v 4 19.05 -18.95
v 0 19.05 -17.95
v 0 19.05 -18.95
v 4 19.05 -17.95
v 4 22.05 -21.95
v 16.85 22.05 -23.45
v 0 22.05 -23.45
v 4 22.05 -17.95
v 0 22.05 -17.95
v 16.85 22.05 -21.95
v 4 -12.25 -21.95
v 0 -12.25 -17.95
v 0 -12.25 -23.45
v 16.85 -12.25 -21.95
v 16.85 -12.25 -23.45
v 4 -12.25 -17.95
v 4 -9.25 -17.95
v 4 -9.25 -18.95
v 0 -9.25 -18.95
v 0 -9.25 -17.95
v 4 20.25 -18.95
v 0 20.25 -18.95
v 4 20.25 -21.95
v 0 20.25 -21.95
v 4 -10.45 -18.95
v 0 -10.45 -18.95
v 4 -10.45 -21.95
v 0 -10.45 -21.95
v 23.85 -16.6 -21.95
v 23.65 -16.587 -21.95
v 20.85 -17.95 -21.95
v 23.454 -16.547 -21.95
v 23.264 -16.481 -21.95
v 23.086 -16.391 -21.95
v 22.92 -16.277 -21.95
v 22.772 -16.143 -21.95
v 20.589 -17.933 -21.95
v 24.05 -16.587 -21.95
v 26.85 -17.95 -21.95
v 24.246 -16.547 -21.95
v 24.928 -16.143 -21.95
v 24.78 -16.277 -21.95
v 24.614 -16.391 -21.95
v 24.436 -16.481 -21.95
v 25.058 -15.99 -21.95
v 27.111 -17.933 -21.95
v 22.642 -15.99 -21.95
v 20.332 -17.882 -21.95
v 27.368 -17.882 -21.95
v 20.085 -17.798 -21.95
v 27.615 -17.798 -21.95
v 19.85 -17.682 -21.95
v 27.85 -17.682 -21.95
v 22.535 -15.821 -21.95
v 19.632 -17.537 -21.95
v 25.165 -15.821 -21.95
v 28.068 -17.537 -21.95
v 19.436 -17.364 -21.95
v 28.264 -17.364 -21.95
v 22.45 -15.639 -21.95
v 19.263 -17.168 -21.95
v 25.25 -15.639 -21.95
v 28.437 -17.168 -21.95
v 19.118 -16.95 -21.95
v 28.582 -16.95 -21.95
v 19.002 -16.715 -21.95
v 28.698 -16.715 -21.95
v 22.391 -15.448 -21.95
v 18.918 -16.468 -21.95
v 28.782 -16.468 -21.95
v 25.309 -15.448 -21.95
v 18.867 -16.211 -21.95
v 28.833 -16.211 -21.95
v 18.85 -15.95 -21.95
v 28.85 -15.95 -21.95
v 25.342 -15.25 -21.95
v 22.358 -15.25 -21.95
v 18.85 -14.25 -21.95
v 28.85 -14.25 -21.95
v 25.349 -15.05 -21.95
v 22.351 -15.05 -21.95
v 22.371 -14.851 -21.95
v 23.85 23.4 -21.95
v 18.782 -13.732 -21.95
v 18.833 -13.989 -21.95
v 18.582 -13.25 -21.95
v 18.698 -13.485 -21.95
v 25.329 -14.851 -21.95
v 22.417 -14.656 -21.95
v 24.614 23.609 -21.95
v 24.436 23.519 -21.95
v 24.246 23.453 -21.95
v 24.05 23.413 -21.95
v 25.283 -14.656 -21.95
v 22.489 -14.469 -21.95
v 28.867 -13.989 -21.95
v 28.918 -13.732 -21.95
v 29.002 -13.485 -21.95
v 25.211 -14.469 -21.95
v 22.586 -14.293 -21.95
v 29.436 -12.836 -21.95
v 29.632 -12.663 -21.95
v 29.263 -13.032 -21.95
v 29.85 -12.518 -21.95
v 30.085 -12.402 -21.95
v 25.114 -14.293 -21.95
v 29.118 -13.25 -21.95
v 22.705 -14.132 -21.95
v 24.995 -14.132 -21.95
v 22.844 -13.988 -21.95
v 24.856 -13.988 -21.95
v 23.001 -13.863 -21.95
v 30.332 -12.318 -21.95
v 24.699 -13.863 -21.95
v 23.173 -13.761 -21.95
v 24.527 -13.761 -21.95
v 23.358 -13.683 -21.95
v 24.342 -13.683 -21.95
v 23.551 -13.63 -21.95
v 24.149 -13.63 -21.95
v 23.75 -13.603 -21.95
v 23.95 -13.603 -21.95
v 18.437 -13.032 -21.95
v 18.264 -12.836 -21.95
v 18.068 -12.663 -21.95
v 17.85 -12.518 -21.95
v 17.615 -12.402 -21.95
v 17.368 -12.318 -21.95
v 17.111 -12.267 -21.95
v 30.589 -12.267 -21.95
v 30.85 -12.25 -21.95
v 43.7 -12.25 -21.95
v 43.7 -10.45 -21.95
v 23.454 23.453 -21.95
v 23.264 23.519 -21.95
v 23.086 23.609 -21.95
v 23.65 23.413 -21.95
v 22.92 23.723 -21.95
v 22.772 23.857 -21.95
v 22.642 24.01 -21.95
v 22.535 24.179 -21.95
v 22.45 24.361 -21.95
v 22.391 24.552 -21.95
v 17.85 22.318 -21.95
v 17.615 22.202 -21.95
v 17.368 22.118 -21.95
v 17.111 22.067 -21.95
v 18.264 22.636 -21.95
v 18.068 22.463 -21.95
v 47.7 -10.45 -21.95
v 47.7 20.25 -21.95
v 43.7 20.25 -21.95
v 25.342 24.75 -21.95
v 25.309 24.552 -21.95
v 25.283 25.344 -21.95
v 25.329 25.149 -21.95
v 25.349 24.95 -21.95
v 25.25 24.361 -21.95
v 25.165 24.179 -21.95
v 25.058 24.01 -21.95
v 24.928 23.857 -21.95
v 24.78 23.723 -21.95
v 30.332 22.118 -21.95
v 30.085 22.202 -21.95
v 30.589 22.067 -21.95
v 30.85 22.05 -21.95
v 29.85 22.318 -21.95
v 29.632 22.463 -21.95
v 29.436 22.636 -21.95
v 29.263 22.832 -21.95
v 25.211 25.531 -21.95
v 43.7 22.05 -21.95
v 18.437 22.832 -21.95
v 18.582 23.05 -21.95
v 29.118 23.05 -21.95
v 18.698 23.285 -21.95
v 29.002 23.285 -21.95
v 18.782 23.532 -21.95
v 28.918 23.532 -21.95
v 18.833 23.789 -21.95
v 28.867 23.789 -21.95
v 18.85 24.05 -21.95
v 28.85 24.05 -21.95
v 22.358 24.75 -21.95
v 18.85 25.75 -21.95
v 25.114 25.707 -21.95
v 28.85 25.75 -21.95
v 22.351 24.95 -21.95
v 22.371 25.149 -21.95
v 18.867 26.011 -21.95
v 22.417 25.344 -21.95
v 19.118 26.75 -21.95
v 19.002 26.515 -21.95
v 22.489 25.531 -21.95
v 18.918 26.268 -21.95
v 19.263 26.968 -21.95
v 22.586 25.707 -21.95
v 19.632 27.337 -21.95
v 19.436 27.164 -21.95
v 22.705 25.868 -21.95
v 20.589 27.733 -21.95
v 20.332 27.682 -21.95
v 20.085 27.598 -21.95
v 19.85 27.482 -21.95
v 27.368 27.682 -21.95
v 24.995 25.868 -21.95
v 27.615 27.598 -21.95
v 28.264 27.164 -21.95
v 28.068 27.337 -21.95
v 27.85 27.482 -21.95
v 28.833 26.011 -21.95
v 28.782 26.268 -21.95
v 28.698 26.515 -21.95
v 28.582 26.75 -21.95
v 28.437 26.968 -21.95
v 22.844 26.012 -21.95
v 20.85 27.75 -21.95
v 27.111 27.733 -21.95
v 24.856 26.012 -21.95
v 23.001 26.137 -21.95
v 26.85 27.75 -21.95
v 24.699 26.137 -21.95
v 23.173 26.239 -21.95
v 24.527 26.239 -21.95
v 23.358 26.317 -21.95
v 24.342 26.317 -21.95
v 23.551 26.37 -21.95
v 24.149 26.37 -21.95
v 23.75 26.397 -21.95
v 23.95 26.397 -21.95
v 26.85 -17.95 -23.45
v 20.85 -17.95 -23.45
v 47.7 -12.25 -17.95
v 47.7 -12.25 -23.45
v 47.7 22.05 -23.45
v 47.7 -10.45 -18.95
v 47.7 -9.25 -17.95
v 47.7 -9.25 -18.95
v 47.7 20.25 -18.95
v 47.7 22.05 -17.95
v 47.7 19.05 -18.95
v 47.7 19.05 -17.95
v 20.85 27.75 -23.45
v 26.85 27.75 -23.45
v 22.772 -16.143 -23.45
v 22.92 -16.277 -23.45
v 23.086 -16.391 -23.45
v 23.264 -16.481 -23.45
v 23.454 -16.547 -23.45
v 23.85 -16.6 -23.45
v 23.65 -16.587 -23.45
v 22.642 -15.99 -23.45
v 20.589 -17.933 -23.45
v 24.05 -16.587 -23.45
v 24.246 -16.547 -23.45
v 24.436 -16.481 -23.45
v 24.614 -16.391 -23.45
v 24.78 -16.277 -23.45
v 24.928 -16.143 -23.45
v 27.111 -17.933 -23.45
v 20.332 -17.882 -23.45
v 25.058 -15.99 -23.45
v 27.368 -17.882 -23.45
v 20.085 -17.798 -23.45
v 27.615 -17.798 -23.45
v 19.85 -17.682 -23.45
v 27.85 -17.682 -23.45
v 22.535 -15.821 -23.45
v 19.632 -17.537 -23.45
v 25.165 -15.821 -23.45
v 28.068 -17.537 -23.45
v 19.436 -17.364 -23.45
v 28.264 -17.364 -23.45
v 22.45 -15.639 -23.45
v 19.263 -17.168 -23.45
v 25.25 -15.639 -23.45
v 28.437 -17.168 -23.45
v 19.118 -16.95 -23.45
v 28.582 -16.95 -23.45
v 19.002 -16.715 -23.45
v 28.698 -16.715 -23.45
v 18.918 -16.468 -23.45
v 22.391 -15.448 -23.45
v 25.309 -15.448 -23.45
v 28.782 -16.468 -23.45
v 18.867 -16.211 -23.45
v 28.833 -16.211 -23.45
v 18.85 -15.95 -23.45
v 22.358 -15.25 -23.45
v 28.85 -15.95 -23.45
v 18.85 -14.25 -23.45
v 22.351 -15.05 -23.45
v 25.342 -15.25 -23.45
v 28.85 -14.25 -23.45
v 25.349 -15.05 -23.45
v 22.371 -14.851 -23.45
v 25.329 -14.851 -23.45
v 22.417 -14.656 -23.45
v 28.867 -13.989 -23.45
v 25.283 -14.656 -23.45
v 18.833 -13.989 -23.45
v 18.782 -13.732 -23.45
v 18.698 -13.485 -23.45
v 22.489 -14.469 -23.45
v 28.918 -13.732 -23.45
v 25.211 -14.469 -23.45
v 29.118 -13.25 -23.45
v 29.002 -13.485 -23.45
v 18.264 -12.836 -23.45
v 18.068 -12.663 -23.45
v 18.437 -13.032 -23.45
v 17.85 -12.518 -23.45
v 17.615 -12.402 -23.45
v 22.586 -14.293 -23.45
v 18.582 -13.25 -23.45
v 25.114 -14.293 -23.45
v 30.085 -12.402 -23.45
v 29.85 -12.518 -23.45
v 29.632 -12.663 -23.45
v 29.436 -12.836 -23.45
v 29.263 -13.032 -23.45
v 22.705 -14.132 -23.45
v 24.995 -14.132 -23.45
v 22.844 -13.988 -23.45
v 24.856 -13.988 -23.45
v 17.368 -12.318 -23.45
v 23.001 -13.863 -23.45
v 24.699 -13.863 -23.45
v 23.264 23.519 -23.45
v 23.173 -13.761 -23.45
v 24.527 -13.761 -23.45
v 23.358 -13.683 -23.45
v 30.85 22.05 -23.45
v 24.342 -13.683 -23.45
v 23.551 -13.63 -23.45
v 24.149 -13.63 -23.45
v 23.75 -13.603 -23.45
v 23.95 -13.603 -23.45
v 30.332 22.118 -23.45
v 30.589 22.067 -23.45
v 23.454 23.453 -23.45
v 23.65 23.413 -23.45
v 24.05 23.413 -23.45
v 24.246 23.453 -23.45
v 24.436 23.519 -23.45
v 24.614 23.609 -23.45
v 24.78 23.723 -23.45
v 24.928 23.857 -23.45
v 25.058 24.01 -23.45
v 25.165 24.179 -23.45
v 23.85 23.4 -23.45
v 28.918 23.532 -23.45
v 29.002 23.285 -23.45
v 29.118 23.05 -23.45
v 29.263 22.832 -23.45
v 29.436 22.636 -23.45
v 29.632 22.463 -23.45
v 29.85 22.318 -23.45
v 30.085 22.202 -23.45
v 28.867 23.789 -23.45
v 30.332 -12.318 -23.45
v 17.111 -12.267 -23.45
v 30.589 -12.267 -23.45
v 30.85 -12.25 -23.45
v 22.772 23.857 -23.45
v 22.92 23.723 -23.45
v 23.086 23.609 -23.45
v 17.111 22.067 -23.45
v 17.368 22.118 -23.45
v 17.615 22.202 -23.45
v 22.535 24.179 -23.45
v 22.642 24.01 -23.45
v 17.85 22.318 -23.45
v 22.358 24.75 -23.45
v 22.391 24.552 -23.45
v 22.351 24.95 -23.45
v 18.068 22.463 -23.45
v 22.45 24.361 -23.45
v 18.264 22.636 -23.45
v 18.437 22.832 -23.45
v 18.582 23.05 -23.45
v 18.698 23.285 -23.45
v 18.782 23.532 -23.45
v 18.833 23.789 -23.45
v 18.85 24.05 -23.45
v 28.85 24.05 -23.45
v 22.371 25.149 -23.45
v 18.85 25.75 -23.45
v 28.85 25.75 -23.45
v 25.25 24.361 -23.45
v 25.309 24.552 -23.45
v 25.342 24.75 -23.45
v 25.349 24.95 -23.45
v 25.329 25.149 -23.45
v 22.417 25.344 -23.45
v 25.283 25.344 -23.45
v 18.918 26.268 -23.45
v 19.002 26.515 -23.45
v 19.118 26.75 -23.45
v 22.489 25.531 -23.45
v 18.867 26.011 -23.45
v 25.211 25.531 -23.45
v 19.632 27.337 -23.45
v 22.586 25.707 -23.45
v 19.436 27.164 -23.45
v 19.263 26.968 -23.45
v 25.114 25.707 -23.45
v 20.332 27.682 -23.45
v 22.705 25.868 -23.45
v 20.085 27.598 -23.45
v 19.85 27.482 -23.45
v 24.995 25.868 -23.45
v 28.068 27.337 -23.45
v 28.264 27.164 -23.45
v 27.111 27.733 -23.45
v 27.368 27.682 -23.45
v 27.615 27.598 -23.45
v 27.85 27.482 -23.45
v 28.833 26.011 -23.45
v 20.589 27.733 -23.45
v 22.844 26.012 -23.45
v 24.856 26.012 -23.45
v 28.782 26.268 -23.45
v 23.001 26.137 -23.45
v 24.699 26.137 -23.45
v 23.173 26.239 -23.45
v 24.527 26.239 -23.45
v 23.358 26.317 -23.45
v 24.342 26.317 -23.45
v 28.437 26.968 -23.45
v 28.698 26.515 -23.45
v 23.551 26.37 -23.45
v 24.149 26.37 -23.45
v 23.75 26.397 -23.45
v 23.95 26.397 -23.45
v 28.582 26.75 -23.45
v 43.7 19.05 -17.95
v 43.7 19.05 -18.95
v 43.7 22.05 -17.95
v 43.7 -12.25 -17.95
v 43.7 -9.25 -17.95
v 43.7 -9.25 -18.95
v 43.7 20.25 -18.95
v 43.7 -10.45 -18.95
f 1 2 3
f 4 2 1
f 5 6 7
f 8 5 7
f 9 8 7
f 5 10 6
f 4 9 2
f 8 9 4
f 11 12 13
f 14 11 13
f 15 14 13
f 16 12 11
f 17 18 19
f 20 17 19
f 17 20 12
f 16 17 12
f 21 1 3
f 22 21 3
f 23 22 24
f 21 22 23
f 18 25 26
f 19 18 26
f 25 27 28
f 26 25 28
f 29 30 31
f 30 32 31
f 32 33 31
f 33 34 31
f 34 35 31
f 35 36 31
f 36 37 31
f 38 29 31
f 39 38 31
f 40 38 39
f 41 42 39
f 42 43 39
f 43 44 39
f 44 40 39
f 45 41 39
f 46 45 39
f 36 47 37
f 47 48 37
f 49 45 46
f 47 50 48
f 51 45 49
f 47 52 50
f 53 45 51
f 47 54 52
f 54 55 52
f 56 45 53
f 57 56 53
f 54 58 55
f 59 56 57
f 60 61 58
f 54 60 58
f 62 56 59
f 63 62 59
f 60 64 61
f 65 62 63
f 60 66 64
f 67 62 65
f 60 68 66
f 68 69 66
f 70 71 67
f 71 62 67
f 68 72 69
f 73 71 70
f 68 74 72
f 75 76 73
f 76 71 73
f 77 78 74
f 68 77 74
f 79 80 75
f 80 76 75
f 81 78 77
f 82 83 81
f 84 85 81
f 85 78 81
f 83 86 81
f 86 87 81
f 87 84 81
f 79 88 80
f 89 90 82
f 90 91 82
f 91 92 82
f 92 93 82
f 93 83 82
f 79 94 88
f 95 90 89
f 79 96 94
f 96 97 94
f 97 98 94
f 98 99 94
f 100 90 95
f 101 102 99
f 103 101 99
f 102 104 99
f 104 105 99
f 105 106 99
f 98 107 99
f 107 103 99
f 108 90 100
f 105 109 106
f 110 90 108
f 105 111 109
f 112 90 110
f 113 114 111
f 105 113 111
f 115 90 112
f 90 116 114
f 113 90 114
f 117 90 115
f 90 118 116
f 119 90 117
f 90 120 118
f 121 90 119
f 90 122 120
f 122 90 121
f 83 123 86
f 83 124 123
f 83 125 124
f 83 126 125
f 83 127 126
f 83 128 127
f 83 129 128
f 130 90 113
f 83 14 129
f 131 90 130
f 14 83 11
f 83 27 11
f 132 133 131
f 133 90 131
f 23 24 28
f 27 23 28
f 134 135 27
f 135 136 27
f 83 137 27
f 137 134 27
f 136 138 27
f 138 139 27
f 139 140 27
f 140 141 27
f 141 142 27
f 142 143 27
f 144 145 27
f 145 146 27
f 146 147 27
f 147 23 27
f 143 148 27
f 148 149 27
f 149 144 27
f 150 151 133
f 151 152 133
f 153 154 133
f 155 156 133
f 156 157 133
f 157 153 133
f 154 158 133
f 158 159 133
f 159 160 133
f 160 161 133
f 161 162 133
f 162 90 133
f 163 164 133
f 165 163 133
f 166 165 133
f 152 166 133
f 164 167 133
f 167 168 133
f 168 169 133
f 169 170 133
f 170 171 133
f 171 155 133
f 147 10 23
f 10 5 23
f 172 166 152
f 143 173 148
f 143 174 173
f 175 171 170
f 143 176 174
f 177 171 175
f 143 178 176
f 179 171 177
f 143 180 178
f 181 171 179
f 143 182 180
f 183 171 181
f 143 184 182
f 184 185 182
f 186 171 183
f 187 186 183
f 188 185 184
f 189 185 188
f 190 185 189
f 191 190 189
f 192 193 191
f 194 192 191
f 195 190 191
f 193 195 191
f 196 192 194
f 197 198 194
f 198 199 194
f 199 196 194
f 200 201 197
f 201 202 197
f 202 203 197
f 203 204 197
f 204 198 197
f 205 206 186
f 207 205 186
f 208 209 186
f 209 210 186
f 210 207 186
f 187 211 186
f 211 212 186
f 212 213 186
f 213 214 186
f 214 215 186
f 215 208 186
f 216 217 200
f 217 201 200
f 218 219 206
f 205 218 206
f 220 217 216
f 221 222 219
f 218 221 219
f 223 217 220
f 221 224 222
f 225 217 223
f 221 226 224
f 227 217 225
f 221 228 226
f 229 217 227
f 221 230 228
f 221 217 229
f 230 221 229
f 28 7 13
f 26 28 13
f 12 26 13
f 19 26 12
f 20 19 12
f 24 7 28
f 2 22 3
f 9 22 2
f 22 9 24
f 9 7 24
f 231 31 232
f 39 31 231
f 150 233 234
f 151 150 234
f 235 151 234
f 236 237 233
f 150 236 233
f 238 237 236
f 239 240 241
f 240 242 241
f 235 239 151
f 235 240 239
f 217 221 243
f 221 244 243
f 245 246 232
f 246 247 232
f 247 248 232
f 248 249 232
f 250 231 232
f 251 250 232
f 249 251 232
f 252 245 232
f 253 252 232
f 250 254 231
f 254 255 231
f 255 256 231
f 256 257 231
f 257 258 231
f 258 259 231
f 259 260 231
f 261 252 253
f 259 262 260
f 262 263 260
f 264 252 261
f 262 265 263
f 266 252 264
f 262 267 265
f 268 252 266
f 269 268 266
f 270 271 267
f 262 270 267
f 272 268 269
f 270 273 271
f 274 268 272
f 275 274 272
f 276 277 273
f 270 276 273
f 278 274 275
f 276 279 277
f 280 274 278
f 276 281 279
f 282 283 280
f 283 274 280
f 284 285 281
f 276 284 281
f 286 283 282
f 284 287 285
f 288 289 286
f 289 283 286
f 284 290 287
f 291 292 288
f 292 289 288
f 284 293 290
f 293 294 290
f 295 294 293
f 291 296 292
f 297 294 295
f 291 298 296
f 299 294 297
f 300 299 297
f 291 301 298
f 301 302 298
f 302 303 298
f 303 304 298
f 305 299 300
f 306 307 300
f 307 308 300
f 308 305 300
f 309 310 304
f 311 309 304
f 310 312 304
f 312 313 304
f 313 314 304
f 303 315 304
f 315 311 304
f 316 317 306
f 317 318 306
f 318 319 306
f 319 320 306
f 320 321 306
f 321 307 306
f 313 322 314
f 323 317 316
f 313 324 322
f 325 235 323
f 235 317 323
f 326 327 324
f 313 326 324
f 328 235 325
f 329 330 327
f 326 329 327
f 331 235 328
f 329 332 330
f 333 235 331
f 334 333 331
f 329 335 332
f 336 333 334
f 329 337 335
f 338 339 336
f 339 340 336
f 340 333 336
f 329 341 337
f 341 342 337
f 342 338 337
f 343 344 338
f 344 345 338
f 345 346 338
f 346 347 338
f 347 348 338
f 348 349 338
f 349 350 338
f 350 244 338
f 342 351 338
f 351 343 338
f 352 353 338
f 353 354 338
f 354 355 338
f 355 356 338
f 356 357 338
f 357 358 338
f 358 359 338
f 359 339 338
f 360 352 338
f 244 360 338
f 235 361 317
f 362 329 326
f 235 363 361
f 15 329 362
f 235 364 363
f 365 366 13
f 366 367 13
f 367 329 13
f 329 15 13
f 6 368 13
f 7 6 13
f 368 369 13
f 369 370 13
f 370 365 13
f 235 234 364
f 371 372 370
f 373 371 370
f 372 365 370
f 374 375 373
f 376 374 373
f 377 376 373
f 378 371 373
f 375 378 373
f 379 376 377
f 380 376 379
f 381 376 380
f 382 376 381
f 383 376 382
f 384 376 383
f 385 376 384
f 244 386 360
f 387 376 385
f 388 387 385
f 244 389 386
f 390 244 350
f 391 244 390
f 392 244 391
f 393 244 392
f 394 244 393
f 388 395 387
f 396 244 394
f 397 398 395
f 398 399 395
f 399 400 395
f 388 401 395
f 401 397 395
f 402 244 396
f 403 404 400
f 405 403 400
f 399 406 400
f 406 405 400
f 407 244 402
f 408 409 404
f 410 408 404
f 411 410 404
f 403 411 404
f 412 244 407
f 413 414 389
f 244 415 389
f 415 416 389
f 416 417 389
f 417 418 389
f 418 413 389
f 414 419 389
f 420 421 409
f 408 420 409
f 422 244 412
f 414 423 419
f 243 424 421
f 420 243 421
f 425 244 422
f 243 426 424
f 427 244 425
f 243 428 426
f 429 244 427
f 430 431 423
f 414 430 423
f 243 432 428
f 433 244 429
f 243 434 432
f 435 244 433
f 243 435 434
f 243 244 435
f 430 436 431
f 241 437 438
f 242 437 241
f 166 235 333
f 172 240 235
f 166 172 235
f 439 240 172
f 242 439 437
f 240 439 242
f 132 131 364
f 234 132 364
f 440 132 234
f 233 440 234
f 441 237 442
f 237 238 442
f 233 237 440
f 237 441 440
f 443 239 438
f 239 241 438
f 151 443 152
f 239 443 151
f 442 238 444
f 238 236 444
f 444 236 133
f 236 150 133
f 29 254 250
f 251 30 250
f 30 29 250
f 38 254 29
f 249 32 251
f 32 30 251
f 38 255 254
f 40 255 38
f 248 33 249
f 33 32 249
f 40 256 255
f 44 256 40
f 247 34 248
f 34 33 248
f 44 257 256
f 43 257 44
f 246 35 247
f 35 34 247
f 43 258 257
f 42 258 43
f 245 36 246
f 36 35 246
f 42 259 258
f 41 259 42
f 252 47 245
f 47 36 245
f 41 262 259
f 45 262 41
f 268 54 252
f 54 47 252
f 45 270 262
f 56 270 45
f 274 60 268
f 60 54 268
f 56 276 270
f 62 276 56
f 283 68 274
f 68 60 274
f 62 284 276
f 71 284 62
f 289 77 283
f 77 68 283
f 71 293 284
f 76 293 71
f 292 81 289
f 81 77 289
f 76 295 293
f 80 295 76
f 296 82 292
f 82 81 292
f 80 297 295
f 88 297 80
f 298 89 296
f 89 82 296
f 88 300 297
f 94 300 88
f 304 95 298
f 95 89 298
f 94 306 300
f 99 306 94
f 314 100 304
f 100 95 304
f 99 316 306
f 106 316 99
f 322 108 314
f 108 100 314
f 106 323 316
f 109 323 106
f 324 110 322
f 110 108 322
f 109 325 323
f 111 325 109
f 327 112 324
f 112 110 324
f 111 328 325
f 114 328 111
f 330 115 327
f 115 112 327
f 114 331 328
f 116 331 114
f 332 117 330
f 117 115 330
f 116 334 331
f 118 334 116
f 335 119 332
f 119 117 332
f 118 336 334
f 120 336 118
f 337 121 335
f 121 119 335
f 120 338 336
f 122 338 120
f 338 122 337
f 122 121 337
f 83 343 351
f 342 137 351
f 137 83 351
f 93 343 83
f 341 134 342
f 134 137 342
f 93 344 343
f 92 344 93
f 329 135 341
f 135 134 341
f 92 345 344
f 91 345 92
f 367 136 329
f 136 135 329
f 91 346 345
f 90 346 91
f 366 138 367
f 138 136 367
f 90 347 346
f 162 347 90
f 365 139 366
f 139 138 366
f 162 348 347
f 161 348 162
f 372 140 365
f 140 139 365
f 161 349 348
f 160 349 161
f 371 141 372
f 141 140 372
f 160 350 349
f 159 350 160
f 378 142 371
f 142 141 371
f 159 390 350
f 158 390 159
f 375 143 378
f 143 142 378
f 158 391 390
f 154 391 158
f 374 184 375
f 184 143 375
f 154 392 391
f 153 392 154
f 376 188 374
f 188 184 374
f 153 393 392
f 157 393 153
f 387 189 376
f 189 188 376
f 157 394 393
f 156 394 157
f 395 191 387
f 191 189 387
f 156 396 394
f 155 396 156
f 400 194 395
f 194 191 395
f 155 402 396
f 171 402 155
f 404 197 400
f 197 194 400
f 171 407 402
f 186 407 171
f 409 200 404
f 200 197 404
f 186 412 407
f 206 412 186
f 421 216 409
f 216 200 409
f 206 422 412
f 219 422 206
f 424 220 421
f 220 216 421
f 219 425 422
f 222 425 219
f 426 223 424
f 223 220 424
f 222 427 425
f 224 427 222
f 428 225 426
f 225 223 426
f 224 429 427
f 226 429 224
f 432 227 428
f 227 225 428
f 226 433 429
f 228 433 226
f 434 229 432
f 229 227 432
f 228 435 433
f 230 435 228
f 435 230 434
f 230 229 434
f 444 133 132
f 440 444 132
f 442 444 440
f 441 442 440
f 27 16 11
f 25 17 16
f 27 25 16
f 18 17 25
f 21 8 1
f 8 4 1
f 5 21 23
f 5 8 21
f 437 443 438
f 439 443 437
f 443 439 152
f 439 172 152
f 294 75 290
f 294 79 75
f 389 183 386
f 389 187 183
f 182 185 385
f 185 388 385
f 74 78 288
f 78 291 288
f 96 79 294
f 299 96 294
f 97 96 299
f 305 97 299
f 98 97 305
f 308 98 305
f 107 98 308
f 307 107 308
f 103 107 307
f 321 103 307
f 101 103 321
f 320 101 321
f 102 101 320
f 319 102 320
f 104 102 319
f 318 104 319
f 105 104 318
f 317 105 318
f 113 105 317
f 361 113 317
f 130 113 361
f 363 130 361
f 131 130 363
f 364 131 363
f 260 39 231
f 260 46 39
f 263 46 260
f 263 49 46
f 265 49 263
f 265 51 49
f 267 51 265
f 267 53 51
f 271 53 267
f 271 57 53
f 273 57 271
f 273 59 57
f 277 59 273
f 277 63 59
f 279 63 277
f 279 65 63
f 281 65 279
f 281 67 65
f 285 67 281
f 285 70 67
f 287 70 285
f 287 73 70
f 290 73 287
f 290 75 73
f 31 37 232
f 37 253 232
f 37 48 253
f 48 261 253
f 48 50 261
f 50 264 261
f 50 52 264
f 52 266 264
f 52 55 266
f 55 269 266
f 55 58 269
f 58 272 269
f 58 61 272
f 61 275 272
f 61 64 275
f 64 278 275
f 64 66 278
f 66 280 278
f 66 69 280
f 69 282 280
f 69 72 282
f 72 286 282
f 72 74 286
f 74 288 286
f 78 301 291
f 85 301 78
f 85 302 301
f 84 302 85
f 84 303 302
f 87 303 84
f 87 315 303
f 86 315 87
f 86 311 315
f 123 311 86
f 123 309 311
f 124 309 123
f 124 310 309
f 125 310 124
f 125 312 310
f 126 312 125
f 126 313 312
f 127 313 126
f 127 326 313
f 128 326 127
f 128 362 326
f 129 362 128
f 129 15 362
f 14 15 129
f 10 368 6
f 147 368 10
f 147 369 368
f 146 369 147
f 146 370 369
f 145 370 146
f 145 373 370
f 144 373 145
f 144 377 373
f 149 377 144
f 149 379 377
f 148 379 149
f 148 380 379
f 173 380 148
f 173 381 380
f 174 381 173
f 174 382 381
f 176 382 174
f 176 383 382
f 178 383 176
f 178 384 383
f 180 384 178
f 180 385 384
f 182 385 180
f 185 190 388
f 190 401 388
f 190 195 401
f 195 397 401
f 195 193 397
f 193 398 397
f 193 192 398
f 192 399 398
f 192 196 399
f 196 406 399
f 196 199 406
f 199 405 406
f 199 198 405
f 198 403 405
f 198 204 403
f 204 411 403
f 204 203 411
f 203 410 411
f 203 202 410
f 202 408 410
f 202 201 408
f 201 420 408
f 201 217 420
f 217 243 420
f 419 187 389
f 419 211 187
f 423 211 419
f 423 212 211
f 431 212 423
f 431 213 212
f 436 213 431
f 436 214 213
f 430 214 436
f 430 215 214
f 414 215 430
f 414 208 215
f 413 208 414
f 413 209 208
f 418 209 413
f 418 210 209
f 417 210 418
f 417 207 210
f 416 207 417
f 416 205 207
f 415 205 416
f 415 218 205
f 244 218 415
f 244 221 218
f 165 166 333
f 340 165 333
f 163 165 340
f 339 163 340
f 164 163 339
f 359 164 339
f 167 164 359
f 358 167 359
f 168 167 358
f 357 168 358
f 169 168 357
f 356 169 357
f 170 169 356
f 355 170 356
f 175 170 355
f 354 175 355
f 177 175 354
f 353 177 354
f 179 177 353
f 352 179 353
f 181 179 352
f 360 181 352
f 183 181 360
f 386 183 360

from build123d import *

# Parameters (mm, degrees)
SKETCH1_W             = 47.7
SKETCH1_H             = 45.7
BOSS_EXTRUDE1_DEPTH   = 1.5
SKETCH2_W             = 47.7
SKETCH2_H             = 3
BOSS_EXTRUDE2_DEPTH   = 4
SKETCH3_W             = 47.7
SKETCH3_H             = 3
CUT_EXTRUDE1_DEPTH    = 1.2
SKETCH4_W             = 47.7
SKETCH4_H             = 3
CUT_EXTRUDE2_DEPTH    = 1.2
SKETCH5_R             = 1.5
CUT_EXTRUDE3_DEPTH    = 67.179906316
SKETCH8_W             = 39.7
SKETCH8_H             = 4
CUT_EXTRUDE5_DEPTH    = 63.494319742
SKETCH9_W             = 18.85
SKETCH9_H             = 5.7
CUT_EXTRUDE6_DEPTH    = 67.179906316
FILLET1_R             = 2
BODY_MOVE_COPY1_ANGLE = 90


with BuildPart() as part:
    # Sketch1 → Boss-Extrude1 (new body)
    with BuildSketch(Plane(origin=(0, 0, 0), x_dir=(1, 0, 0), z_dir=(0, 1, 0))):
        with Locations((23.85, 22.85)):
            Rectangle(SKETCH1_W, SKETCH1_H)
    extrude(amount=BOSS_EXTRUDE1_DEPTH)

    # Sketch2 → Boss-Extrude2 (add)
    with BuildSketch(Plane(origin=(0, 1.5, 0), x_dir=(1, 0, 0), z_dir=(0, 1, 0))):
        with Locations((23.85, 38.5)):
            Rectangle(SKETCH2_W, SKETCH2_H)
        with Locations((23.85, 7.2)):
            Rectangle(SKETCH2_W, SKETCH2_H)
    extrude(amount=BOSS_EXTRUDE2_DEPTH)

    # Sketch3 → Cut-Extrude1 (cut)
    with BuildSketch(Plane.XY.offset(-37)):
        with Locations((23.85, 3)):
            Rectangle(SKETCH3_W, SKETCH3_H)
    extrude(amount=-CUT_EXTRUDE1_DEPTH, mode=Mode.SUBTRACT)

    # Sketch4 → Cut-Extrude2 (cut)
    with BuildSketch(Plane(origin=(0, 0, -8.7), x_dir=(-1, 0, 0), z_dir=(0, 0, -1))):
        with Locations((-23.85, 3)):
            Rectangle(SKETCH4_W, SKETCH4_H)
    extrude(amount=-CUT_EXTRUDE2_DEPTH, mode=Mode.SUBTRACT)

    # Sketch5 → Cut-Extrude3 (cut, through all)
    with BuildSketch(Plane(origin=(0, 1.5, 0), x_dir=(1, 0, 0), z_dir=(0, 1, 0))):
        with Locations(Location((23.85, 42.85, 0), (0, 0, 270))):
            Circle(SKETCH5_R)
        with Locations(Location((23.85, 2.85, 0), (0, 0, 270))):
            Circle(SKETCH5_R)
    extrude(amount=-CUT_EXTRUDE3_DEPTH, mode=Mode.SUBTRACT)

    # Sketch8 → Cut-Extrude5 (cut, through all)
    with BuildSketch(Plane.XY.offset(-5.7)):
        with Locations((23.85, 3.5)):
            Rectangle(SKETCH8_W, SKETCH8_H)
    extrude(amount=-CUT_EXTRUDE5_DEPTH, mode=Mode.SUBTRACT)

    # Sketch9 → Cut-Extrude6 (cut, through all)
    with BuildSketch(Plane(origin=(0, 1.5, 0), x_dir=(1, 0, 0), z_dir=(0, 1, 0))):
        with Locations((9.425, 42.85)):
            Rectangle(SKETCH9_W, SKETCH9_H)
        with Locations((38.275, 42.85)):
            Rectangle(SKETCH9_W, SKETCH9_H)
        with Locations((38.275, 2.85)):
            Rectangle(SKETCH9_W, SKETCH9_H)
        with Locations((9.425, 2.85)):
            Rectangle(SKETCH9_W, SKETCH9_H)
    extrude(amount=-CUT_EXTRUDE6_DEPTH, mode=Mode.SUBTRACT)

    # Fillet1
    fillet1_edges = [part.edges().sort_by_distance(p)[0] for p in [
        (18.85, 0.75, 0),
        (18.85, 0.75, -5.7),
        (28.85, 0.75, 0),
        (28.85, 0.75, -5.7),
        (28.85, 0.75, -45.7),
        (28.85, 0.75, -40),
        (18.85, 0.75, -45.7),
        (18.85, 0.75, -40),
    ]]
    fillet(fillet1_edges, radius=FILLET1_R)


with BuildPart() as part_1:
    # Body-Move/Copy1: moved
    add(part.part.rotate(Axis((0, 2.75, -20.7), (1, 0, 0)), BODY_MOVE_COPY1_ANGLE))


solid = part_1.part
